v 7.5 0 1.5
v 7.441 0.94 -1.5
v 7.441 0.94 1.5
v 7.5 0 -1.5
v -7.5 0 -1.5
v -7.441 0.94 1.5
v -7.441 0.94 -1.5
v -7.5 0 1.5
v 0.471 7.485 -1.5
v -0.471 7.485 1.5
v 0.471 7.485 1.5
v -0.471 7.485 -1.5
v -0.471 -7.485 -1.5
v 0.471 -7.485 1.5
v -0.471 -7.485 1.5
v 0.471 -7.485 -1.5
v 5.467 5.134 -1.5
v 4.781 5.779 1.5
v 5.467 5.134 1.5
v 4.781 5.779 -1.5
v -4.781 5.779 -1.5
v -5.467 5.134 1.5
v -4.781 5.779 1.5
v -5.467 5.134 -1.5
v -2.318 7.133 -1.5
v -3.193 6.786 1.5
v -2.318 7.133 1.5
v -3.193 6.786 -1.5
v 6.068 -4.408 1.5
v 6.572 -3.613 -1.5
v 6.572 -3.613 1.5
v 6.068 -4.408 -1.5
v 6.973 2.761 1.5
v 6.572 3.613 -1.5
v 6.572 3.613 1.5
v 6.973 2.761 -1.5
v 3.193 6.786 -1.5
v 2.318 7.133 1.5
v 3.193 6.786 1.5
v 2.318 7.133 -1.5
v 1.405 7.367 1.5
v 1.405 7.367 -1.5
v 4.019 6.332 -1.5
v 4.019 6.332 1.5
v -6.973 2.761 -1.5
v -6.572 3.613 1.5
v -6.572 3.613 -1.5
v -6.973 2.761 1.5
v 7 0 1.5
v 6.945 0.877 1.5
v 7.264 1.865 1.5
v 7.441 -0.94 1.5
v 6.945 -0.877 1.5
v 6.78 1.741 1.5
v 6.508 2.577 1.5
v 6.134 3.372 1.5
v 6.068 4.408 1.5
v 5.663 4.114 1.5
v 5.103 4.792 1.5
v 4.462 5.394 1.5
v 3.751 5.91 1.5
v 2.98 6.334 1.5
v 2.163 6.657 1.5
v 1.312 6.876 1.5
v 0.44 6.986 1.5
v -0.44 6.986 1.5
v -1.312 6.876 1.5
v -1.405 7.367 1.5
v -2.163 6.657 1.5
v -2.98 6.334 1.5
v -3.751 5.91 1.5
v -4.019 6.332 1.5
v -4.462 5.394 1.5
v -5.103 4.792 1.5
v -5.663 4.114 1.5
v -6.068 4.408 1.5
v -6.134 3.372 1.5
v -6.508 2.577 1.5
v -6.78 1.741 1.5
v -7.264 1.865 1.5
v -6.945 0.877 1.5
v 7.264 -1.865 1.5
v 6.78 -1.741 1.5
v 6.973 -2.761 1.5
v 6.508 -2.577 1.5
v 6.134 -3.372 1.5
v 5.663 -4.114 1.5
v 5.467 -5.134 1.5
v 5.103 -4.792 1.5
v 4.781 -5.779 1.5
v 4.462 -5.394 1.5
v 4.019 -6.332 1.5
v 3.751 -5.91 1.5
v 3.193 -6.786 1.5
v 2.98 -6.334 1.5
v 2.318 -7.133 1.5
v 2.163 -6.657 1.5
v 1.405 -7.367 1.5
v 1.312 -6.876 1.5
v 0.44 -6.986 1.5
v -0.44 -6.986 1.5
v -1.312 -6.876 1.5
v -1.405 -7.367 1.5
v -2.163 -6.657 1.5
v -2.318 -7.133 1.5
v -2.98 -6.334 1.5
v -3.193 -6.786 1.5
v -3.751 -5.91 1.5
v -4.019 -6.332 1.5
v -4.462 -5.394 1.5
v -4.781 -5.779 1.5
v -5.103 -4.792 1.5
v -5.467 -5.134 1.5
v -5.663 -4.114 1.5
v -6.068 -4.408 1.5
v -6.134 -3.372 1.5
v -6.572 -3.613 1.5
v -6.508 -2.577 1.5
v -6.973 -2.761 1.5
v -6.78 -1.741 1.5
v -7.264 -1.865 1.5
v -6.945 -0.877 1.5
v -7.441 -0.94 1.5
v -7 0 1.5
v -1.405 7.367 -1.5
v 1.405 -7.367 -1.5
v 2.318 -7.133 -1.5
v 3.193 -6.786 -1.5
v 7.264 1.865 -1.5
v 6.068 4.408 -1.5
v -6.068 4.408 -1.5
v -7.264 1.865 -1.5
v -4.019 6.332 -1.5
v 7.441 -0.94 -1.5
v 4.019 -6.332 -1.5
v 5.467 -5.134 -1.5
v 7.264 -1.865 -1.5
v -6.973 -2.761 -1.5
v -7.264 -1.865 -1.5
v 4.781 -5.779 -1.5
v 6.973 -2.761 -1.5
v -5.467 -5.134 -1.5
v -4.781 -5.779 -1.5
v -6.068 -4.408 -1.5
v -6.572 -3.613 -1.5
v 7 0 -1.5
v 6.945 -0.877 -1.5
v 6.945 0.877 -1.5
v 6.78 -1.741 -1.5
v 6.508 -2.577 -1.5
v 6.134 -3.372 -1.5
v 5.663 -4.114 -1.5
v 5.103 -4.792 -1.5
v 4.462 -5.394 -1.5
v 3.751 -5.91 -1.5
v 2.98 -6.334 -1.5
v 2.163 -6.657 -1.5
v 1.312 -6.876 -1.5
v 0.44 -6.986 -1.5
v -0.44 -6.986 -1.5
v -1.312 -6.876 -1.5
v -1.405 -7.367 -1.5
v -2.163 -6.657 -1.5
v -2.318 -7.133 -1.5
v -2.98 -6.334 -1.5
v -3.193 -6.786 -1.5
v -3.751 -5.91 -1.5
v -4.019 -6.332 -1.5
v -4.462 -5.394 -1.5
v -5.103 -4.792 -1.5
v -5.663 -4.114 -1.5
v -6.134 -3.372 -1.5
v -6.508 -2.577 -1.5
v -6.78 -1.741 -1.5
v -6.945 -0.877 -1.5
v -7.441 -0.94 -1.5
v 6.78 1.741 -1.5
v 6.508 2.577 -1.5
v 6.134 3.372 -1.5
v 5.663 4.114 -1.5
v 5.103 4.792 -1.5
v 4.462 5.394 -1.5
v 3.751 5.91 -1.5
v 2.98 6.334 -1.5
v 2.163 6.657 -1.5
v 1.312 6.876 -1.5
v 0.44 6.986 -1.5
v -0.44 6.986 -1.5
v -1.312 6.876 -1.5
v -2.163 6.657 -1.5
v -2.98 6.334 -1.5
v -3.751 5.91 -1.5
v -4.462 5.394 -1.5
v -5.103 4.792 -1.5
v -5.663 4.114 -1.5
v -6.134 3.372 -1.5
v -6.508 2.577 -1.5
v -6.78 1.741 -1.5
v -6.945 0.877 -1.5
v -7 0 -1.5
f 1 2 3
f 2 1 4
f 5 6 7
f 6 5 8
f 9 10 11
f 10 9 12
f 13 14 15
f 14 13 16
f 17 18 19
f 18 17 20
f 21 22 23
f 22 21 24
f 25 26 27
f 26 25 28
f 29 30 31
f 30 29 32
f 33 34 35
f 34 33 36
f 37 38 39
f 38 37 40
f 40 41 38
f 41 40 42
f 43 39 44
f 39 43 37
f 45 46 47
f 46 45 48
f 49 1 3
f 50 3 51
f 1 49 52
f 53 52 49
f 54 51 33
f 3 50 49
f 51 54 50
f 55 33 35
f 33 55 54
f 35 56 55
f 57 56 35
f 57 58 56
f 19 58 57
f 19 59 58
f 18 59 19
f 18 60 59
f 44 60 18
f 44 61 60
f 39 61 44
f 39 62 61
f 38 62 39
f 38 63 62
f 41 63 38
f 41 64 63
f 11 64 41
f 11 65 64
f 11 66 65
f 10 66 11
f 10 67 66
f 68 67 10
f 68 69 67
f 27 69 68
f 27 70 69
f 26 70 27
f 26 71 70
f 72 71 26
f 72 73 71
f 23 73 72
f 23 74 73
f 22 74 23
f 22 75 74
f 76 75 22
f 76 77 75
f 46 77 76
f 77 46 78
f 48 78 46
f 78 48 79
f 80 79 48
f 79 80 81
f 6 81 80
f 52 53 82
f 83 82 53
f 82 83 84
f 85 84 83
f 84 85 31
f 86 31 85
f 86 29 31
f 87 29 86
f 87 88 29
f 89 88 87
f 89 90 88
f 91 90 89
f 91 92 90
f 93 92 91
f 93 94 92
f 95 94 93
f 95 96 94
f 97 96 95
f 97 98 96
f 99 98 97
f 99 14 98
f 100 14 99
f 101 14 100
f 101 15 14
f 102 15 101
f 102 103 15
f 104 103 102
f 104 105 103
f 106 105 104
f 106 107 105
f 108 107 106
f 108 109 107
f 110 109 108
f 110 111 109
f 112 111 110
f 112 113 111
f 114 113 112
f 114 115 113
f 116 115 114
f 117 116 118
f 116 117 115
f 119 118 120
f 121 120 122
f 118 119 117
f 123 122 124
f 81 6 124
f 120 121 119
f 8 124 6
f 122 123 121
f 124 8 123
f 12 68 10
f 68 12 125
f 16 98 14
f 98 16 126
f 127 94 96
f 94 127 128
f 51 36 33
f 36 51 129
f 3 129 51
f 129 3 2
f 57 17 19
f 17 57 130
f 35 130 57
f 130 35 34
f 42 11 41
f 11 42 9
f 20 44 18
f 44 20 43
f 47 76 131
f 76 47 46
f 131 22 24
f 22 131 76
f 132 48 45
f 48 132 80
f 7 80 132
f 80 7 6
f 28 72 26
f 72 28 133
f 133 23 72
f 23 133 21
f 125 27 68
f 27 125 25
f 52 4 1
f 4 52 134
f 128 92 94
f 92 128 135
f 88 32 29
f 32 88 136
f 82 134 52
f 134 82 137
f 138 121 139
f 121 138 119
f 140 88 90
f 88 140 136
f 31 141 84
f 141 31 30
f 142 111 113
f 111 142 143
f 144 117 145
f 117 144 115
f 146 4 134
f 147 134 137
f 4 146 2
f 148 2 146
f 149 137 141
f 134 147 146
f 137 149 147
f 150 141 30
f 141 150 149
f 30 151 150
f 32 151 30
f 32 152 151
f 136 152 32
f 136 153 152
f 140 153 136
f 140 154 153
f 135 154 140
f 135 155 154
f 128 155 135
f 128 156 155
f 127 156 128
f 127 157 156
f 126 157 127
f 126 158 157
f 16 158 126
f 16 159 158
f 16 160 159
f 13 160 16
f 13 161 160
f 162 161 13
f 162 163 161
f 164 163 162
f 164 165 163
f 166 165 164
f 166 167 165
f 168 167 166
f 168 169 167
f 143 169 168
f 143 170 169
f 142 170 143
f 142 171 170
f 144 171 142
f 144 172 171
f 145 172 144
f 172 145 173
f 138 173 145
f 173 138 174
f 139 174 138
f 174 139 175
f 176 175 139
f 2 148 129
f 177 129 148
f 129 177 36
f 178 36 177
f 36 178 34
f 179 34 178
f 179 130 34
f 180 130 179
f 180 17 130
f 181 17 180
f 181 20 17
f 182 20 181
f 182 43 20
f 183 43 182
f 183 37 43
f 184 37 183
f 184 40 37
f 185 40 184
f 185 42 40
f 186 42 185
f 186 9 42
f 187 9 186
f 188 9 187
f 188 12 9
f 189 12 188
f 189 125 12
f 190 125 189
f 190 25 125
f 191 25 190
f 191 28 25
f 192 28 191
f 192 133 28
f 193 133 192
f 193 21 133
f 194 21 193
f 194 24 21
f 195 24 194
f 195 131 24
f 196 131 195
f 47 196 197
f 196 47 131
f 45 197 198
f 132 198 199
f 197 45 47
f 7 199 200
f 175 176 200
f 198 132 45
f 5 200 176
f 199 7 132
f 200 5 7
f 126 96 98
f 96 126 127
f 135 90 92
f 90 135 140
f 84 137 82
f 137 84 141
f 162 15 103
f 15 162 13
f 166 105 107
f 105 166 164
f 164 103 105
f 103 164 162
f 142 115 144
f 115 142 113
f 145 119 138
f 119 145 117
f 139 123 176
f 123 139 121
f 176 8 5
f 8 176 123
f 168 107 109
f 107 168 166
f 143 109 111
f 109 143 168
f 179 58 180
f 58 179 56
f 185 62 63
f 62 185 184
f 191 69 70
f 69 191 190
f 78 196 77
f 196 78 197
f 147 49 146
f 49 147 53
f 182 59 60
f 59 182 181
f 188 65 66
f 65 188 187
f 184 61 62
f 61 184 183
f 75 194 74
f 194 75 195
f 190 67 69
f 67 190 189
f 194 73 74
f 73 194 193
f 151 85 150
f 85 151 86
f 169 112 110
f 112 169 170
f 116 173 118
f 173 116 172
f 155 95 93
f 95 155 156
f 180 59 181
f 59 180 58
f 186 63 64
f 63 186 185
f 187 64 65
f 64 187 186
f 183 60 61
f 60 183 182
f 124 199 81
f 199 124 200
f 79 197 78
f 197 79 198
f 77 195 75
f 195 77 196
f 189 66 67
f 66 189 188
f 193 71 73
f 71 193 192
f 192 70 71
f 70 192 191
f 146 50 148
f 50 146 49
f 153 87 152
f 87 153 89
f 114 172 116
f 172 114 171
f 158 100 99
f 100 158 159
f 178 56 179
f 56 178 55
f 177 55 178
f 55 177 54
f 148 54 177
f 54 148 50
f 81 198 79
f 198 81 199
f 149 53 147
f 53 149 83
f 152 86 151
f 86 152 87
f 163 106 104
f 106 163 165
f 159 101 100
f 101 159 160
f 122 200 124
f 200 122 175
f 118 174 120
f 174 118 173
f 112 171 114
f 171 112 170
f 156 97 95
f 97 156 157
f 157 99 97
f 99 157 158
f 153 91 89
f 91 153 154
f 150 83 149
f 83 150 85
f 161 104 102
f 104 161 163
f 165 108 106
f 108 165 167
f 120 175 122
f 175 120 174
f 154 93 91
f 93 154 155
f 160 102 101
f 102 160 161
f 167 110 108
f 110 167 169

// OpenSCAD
$fn = 50;


difference() {
	union() {
		translate(v = [0, 0, -1.5000000000]) {
			cylinder(h = 3, r = 7.5000000000);
		}
	}
	union() {
		translate(v = [0, 0, -100.0000000000]) {
			cylinder(h = 200, r = 7);
		}
	}
}
